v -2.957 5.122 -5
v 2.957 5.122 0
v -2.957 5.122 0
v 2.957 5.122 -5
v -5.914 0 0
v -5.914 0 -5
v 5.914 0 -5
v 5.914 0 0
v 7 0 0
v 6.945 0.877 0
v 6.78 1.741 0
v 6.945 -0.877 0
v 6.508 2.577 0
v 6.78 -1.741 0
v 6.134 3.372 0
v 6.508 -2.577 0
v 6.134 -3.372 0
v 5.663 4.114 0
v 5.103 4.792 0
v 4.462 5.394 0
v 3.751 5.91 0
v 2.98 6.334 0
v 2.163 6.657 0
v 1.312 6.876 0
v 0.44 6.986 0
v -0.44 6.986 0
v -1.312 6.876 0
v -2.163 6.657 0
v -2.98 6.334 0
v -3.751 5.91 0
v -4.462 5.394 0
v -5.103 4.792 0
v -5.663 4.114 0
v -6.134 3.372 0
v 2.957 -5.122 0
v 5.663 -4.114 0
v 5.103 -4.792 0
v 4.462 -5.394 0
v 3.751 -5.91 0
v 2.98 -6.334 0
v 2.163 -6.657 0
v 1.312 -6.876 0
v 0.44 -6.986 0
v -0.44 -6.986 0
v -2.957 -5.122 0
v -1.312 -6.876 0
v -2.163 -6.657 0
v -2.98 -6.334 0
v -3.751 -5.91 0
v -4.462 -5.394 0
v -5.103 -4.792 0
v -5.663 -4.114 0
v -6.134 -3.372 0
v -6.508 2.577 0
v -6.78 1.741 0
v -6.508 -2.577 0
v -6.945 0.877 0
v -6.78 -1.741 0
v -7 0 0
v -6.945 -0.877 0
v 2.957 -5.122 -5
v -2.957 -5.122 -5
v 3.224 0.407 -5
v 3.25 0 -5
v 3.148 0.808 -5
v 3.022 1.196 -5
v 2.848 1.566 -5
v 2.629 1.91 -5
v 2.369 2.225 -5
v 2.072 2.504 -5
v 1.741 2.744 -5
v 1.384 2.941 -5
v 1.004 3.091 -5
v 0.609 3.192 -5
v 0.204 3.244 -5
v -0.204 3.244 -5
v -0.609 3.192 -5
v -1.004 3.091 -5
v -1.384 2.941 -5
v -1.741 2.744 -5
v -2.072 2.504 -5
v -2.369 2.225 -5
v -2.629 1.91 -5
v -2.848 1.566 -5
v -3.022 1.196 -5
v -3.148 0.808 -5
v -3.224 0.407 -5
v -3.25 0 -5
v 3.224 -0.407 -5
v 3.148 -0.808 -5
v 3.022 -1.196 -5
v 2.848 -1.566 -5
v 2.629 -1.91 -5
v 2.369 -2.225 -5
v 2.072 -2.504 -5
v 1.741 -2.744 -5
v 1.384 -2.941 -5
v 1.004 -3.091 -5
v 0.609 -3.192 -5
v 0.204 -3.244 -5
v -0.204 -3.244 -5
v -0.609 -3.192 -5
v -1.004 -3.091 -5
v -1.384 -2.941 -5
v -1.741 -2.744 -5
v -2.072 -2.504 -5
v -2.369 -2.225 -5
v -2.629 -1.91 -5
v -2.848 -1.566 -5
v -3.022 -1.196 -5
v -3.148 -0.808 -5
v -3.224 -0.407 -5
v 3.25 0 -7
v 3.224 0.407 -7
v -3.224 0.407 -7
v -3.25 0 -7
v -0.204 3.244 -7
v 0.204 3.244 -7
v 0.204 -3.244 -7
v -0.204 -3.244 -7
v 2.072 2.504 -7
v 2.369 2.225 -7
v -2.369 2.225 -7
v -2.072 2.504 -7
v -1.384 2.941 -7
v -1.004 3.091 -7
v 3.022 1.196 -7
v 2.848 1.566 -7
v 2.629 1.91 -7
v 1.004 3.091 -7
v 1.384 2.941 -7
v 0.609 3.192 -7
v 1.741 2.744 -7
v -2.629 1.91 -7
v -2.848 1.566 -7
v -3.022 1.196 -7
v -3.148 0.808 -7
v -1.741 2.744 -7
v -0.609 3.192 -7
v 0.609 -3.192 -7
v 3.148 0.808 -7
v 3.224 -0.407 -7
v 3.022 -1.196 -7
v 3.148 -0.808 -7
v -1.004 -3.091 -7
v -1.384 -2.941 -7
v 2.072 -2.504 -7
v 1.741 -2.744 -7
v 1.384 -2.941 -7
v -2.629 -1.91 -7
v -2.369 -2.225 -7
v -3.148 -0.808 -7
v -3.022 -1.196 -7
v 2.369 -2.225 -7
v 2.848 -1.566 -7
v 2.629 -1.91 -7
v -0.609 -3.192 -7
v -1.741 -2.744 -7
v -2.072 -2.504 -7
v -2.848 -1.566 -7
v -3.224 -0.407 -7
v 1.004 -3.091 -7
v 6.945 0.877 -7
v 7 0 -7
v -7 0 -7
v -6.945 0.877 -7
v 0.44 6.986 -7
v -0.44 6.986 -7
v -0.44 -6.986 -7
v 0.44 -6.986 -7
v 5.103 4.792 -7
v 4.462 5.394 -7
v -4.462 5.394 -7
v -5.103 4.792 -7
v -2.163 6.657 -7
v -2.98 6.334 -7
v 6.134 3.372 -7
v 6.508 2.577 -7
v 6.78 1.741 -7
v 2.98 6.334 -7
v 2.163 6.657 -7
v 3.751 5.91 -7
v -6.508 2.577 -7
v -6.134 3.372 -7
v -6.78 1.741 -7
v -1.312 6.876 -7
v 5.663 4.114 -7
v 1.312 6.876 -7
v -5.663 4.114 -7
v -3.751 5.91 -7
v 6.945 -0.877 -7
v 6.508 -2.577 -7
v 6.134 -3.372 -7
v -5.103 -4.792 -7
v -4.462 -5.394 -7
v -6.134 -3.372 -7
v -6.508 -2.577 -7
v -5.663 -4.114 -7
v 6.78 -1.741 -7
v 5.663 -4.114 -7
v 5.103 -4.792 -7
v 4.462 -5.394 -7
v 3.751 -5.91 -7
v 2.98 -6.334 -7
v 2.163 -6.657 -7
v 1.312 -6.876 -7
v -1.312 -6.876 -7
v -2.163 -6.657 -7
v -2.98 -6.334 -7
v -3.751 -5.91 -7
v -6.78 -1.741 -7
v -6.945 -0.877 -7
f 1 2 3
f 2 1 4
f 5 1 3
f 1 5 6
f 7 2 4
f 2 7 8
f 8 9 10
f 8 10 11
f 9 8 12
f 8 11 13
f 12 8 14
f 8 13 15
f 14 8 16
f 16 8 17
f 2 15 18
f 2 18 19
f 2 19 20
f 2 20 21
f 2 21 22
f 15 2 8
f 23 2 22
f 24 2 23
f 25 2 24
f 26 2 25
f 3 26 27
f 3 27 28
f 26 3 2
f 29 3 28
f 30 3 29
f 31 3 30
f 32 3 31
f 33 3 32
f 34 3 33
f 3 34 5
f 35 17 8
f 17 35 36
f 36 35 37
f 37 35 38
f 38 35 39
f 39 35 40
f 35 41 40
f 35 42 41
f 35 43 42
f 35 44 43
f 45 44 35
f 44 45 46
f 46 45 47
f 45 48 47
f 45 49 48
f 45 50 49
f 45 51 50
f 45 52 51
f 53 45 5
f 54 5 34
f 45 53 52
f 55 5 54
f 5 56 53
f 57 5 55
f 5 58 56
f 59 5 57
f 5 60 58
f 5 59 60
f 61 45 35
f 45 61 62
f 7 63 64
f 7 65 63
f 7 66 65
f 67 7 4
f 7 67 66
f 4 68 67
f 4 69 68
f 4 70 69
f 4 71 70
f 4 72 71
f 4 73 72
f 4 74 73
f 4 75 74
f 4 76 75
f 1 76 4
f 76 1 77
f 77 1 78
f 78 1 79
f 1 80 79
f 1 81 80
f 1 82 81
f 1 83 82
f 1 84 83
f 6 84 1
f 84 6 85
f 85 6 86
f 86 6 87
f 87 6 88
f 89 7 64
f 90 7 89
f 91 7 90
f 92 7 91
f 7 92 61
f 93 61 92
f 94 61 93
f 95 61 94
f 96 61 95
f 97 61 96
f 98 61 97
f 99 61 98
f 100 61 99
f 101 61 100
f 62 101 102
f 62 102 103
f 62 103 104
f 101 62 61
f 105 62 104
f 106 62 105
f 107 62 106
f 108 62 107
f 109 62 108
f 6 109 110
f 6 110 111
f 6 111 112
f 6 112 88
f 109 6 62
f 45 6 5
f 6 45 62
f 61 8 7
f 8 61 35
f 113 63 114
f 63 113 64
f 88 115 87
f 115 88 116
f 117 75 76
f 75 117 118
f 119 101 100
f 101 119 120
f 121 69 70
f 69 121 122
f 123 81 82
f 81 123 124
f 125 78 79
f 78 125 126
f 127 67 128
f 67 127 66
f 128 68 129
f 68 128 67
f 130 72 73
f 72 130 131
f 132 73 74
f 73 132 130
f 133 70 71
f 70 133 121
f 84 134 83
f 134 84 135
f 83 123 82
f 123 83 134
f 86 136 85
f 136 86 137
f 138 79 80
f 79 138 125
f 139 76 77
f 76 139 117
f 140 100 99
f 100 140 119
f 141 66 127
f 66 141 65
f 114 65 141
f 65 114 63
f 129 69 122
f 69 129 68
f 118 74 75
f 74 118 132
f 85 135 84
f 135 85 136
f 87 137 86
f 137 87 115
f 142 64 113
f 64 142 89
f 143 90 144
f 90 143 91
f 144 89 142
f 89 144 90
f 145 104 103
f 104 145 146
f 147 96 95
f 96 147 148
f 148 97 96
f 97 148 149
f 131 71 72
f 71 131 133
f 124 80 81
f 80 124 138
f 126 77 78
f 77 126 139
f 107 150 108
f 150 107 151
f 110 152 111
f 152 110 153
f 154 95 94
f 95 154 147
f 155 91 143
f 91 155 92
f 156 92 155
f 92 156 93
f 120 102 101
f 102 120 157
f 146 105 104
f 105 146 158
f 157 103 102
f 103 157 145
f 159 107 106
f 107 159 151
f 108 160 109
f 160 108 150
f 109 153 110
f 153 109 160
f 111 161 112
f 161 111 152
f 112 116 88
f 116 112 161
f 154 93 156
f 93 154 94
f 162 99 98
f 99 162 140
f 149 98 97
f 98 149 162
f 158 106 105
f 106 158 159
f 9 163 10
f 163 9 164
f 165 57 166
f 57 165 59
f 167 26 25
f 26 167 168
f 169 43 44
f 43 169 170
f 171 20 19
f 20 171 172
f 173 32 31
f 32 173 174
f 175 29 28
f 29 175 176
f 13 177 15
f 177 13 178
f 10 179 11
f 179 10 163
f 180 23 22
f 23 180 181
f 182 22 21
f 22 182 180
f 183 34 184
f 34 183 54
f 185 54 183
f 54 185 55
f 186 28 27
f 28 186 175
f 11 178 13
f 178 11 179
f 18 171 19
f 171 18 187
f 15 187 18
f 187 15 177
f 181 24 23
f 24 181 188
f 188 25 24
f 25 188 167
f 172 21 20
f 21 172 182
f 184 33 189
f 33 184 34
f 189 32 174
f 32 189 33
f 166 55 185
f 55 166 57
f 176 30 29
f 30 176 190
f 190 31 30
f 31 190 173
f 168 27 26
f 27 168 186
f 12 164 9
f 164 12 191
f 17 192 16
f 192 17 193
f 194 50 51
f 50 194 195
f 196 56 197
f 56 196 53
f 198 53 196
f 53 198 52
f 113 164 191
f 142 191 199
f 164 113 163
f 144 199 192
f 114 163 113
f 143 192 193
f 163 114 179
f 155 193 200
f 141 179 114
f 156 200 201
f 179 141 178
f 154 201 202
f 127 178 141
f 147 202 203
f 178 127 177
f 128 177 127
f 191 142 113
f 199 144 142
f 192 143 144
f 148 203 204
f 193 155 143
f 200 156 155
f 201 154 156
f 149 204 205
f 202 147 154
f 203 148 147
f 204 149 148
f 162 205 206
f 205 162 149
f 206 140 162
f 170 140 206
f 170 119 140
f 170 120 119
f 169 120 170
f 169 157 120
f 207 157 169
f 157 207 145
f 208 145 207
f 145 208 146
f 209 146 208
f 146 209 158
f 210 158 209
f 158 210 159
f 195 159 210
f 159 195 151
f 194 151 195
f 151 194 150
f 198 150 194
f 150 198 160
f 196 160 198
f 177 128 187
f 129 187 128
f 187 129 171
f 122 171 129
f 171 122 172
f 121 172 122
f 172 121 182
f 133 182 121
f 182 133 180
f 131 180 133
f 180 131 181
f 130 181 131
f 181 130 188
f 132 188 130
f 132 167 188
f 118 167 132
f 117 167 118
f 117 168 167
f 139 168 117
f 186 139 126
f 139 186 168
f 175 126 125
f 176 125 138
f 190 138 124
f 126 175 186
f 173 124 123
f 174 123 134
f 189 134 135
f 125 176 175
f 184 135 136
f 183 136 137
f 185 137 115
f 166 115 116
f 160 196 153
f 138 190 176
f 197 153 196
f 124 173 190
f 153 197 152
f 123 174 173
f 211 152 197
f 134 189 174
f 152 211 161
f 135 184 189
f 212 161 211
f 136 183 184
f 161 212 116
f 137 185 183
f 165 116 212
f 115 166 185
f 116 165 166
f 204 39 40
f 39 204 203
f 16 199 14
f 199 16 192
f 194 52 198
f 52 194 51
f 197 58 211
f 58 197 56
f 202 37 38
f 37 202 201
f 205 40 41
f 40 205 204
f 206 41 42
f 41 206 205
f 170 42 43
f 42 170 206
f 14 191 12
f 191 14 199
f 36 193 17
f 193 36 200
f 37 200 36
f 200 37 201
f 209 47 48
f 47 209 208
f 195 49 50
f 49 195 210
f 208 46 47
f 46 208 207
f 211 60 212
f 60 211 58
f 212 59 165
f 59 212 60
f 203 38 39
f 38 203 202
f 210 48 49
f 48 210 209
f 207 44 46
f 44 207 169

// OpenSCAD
$fn = 50;


difference() {
	union() {
		translate(v = [0, 0, -7.0000000000]) {
			cylinder(h = 7.0000000000, r = 7.0000000000);
		}
	}
	union() {
		translate(v = [0, 0, 0]) {
			rotate(a = [0, 0, 0]) {
				difference() {
					union() {
						translate(v = [0, 0, -5]) {
							#linear_extrude(height = 5) {
								polygon(points = [[5.9142500000, 0.0000000000], [2.9571250000, 5.1218907443], [-2.9571250000, 5.1218907443], [-5.9142500000, 0.0000000000], [-2.9571250000, -5.1218907443], [2.9571250000, -5.1218907443]]);
							}
						}
					}
					union();
				}
			}
		}
		#translate(v = [0, 0, -100.0000000000]) {
			cylinder(h = 200, r = 3.2500000000);
		}
	}
}
